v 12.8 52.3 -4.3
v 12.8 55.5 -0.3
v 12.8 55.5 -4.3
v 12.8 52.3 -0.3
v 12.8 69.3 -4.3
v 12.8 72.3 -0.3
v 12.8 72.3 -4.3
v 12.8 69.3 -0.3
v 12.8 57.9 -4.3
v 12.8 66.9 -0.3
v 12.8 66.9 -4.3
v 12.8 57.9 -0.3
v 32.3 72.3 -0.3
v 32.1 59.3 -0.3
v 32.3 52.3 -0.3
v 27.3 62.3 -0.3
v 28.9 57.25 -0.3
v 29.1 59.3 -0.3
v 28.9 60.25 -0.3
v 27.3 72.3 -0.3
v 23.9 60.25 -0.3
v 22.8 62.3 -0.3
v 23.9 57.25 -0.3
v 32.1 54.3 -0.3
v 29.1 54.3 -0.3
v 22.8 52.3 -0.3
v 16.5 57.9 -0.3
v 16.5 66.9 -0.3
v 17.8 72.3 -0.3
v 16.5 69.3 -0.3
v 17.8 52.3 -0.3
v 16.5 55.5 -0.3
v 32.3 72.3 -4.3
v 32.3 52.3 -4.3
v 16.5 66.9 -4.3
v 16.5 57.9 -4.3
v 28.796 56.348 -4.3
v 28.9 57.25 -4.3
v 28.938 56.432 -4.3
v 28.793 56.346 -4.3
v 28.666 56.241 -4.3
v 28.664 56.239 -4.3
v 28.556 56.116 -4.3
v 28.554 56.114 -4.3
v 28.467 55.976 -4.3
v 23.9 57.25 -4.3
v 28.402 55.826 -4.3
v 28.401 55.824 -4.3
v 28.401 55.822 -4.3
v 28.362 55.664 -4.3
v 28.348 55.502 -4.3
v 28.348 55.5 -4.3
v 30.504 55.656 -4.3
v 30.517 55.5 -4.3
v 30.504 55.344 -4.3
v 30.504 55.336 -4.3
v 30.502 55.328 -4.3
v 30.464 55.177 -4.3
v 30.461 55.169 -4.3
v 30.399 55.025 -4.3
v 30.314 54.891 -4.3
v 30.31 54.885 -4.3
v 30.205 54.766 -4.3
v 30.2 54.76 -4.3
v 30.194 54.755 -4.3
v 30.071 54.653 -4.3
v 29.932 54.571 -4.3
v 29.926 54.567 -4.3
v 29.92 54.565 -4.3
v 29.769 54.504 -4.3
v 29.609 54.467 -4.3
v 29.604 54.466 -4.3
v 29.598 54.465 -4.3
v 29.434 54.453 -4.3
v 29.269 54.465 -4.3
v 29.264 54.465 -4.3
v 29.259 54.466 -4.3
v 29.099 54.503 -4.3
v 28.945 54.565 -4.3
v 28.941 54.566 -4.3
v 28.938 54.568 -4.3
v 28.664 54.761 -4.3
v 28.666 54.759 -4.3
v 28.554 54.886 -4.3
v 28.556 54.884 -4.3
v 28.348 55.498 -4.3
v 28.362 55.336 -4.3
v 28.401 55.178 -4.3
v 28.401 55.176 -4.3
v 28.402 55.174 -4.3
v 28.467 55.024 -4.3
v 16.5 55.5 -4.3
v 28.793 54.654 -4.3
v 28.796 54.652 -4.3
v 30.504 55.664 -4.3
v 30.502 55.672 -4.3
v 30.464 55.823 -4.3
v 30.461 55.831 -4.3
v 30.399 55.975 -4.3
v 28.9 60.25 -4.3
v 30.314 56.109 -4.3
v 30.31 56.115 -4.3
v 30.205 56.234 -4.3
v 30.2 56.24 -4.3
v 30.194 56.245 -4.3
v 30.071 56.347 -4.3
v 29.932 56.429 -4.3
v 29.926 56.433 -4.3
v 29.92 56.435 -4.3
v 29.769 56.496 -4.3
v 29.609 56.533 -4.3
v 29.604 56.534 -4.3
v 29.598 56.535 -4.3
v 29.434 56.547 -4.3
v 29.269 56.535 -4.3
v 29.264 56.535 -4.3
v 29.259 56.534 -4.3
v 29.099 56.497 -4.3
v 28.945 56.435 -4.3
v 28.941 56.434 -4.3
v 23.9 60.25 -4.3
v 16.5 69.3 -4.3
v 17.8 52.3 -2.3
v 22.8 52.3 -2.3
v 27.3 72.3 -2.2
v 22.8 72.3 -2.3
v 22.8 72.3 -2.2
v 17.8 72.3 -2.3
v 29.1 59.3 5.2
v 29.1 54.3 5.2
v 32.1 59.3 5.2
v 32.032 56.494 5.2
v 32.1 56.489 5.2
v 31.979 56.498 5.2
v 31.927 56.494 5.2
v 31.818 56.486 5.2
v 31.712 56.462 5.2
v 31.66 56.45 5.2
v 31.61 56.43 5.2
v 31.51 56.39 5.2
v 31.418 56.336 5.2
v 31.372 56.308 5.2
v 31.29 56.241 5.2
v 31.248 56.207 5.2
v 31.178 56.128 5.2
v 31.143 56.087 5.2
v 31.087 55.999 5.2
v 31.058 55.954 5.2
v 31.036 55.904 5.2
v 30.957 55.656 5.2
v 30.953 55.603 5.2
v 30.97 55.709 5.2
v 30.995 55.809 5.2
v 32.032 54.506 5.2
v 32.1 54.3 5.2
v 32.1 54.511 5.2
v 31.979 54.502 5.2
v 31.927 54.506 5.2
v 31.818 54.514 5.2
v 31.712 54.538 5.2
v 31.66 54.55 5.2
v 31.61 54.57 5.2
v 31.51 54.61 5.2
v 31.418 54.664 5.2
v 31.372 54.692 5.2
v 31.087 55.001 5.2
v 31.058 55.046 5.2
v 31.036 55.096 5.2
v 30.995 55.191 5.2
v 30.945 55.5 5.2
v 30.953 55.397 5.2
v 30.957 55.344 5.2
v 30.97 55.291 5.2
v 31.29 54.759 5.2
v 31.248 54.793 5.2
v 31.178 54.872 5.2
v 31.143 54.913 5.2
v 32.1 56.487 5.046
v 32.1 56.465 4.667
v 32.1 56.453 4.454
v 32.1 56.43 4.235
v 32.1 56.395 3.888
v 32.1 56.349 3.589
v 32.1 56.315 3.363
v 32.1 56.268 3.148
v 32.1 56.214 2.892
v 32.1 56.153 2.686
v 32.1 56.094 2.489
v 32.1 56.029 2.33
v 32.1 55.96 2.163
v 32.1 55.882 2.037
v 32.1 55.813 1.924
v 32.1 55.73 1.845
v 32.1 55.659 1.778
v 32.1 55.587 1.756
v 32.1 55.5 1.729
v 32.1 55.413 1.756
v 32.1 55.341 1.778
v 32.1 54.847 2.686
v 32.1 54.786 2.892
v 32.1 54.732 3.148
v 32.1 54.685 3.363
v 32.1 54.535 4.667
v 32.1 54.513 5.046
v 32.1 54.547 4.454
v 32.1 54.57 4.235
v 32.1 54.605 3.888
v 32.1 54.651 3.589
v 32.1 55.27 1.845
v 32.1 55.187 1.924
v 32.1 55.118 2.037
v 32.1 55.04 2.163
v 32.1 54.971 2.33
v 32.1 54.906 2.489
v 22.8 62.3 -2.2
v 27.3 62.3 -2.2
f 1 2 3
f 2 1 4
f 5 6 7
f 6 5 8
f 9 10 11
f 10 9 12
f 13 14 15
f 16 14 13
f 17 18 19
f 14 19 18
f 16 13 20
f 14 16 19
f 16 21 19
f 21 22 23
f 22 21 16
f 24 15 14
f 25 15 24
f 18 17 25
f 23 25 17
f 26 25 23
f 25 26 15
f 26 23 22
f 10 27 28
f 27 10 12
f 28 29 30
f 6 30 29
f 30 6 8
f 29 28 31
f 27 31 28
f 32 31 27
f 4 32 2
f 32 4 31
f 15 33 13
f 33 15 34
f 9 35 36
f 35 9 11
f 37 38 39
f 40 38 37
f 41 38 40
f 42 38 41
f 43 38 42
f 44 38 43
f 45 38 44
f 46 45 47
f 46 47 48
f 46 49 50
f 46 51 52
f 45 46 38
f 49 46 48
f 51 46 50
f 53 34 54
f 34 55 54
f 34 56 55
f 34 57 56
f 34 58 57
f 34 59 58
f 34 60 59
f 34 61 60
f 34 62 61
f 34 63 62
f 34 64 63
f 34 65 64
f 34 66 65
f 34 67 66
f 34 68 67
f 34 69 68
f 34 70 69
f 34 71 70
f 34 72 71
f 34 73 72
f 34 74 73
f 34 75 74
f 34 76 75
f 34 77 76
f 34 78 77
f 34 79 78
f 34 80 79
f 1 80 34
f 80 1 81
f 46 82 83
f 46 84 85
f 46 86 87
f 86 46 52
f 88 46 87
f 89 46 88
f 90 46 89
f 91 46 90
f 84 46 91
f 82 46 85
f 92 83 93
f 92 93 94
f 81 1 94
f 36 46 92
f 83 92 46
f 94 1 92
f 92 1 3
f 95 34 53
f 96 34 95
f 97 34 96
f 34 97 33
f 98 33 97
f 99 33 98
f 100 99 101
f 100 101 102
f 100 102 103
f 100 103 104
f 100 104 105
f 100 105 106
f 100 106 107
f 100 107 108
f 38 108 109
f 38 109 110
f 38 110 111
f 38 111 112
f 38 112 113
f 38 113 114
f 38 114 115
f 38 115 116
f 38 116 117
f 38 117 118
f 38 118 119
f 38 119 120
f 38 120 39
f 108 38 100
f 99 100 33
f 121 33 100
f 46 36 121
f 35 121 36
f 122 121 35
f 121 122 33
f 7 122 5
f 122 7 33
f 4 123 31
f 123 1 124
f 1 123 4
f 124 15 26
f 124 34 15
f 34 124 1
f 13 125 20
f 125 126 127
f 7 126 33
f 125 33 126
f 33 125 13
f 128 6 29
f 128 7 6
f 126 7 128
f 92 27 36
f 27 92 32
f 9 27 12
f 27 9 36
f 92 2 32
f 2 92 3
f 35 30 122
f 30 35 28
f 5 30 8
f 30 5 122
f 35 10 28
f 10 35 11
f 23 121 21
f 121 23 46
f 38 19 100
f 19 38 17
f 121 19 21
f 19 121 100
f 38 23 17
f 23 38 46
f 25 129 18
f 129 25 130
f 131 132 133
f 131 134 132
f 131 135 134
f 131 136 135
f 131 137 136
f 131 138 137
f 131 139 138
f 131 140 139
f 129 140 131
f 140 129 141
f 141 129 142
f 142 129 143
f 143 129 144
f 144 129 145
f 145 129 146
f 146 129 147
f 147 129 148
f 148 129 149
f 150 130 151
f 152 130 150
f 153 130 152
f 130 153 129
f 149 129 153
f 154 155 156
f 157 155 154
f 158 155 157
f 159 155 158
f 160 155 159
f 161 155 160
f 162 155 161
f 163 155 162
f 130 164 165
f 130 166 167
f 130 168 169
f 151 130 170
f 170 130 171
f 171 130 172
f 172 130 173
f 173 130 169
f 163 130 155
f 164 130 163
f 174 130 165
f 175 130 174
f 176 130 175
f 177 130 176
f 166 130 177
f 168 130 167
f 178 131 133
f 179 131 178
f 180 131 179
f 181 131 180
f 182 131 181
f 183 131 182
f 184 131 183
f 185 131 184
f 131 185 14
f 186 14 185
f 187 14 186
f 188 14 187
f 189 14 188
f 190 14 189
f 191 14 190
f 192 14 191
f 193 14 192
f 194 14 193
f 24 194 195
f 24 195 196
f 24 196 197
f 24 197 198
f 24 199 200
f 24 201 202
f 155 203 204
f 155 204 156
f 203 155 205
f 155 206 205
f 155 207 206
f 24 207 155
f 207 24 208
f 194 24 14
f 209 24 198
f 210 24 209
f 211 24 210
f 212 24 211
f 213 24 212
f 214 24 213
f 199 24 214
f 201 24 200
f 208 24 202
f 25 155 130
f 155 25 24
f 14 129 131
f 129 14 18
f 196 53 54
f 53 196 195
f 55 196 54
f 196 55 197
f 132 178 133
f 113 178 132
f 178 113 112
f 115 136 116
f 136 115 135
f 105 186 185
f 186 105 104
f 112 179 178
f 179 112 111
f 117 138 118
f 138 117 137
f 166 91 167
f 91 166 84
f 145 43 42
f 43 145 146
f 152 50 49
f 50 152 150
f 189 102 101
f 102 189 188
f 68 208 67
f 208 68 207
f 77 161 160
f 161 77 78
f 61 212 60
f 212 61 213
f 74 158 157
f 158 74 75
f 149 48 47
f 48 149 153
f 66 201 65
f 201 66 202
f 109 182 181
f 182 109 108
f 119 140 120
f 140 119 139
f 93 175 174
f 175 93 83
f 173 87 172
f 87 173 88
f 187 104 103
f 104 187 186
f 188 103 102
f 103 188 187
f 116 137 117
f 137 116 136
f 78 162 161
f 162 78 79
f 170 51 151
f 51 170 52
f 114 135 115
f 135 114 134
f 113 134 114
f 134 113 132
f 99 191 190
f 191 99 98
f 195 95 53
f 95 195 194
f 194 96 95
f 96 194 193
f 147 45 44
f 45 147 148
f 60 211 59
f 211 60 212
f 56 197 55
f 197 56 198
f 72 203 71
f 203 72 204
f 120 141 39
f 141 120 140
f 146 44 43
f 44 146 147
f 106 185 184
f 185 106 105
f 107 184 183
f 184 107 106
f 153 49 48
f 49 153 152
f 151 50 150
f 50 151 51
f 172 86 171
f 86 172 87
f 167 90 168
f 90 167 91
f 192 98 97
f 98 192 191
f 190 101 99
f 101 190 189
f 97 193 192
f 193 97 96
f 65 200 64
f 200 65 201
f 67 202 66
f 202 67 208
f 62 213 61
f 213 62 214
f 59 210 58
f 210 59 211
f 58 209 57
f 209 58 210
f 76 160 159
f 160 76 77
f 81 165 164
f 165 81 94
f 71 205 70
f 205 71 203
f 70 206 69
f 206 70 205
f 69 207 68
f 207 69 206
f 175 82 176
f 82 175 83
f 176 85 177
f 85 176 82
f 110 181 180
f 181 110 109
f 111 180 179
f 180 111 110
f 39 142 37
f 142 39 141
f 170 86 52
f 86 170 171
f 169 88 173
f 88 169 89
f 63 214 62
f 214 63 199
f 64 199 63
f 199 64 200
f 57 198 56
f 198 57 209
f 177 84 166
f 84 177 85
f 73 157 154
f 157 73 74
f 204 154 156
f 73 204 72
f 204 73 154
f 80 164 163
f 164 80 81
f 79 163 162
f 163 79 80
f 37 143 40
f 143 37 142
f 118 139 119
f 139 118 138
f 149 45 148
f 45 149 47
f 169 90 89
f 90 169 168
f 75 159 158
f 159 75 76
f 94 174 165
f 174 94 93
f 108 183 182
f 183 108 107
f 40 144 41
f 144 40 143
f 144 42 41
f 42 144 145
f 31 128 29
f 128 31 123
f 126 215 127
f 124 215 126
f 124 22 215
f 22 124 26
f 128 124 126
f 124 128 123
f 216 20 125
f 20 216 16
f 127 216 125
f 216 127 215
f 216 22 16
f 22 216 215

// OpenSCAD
// file: kle/crkbd-layout.scad
// Functions to extract from the raw data structure, not sized to units
function key_pos(key) = key[0];
function key_size(key) = key[1];
function key_rot(key) = key[2];
function key_rot_angle(key) = key_rot(key)[0];
function key_rot_off(key) = key_rot(key)[1];

// Put a child shape at the appropriate position for a key, incorporating unit sizing
module position_key(key, unit = 19.05) {
    pos = (key_pos(key) + key_size(key) / 2) * unit;
    rot_off = key_rot_off(key) * unit;
    translate(rot_off) rotate([0, 0, key_rot_angle(key)]) translate(-rot_off)
        translate(pos)
        children();
}

crkbd_layout = [
    [[3.5, 1], [1, 1], [0, [0, 0]]], /* E */
    [[13.0, 1], [1, 1], [0, [0, 0]]], /* I */
    [[2.5, 1.125], [1, 1], [0, [0, 0]]], /* W */
    [[4.5, 1.125], [1, 1], [0, [0, 0]]], /* R */
    [[12.0, 1.125], [1, 1], [0, [0, 0]]], /* U */
    [[14.0, 1.125], [1, 1], [0, [0, 0]]], /* O */
    [[5.5, 1.25], [1, 1], [0, [0, 0]]], /* T */
    [[11.0, 1.25], [1, 1], [0, [0, 0]]], /* Y */
    [[0.5, 1.375], [1, 1], [0, [0, 0]]], /* Esc */
    [[1.5, 1.375], [1, 1], [0, [0, 0]]], /* Q */
    [[15.0, 1.375], [1, 1], [0, [0, 0]]], /* P */
    [[16.0, 1.375], [1, 1], [0, [0, 0]]], /* Bksp */
    [[3.5, 2.0], [1, 1], [0, [0, 0]]], /* D */
    [[13.0, 2.0], [1, 1], [0, [0, 0]]], /* K */
    [[2.5, 2.125], [1, 1], [0, [0, 0]]], /* S */
    [[4.5, 2.125], [1, 1], [0, [0, 0]]], /* F */
    [[12.0, 2.125], [1, 1], [0, [0, 0]]], /* J */
    [[14.0, 2.125], [1, 1], [0, [0, 0]]], /* L */
    [[5.5, 2.25], [1, 1], [0, [0, 0]]], /* G */
    [[11.0, 2.25], [1, 1], [0, [0, 0]]], /* H */
    [[0.5, 2.375], [1, 1], [0, [0, 0]]], /* Tab/Ctrl */
    [[1.5, 2.375], [1, 1], [0, [0, 0]]], /* A */
    [[15.0, 2.375], [1, 1], [0, [0, 0]]], /* ; */
    [[16.0, 2.375], [1, 1], [0, [0, 0]]], /* ' */
    [[3.5, 3.0], [1, 1], [0, [0, 0]]], /* C */
    [[13.0, 3.0], [1, 1], [0, [0, 0]]], /* , */
    [[4.5, 3.125], [1, 1], [0, [0, 0]]], /* V */
    [[12.0, 3.125], [1, 1], [0, [0, 0]]], /* M */
    [[14.0, 3.125], [1, 1], [0, [0, 0]]], /* . */
    [[2.5, 3.1251496999999997], [1, 1], [0, [0, 0]]], /* X */
    [[5.5, 3.25], [1, 1], [0, [0, 0]]], /* B */
    [[11.0, 3.25], [1, 1], [0, [0, 0]]], /* N */
    [[0.5, 3.375], [1, 1], [0, [0, 0]]], /* LShift */
    [[1.5, 3.375], [1, 1], [0, [0, 0]]], /* Z */
    [[15.0, 3.375], [1, 1], [0, [0, 0]]], /* / */
    [[16.0, 3.375], [1, 1], [0, [0, 0]]], /* RShift */
    [[4, 4.16], [1, 1], [0, [0, 0]]], /* Alt */
    [[12.5, 4.16], [1, 1], [0, [0, 0]]], /* Ctrl */
    [[5, 4.16], [1, 1], [15, [5, 5.15]]], /* Lower */
    [[5.91, 3.39], [1, 1.5], [30, [5, 5.25]]], /* Ent */
    [[10.59, 3.39], [1, 1.5], [-30, [12.5, 5.25]]], /* Space */
    [[11.5, 4.16], [1, 1], [-15, [12.5, 5.15]]], /* Raise */
];
// file: pico.scad
module pico() { translate([ 0, 0, 1 ]) rotate(a = [ 90, 0, 90 ]) import("RaspberryPiPico.amf", convexity = 3); }

module pico_test() { pico(); }

//pico_test();
// file: crkbd-common.scad
// http://www.keyboard-layout-editor.com/#/gists/62e7fc79758227cd0ca7efae1afebd99
include <kle/crkbd-layout.scad>

// Hacky way to select just the left hand keys from a split layout
left_keys = [ for (i = crkbd_layout) if (key_pos(i).x < 8) i ];

crkbd_pcb = [134.65, 91.7, 1.65];
crkbd_first_offset = [-9.688, 26.449, 0];  // Coords to put top left corner of PCB at origin
crkbd_window_size = [20.708, 60.85];
//crkbd_window_size = [25, 70];

crkbd_center_offset = crkbd_first_offset + [-crkbd_pcb.x, crkbd_pcb.y - 30] / 2; // To approx center on origin

//mcu_size = [19.5, 34.5, 9.8];  // Adjust depth according to sockets etc
mcu_size = [31+3, 51+3, 9.8];  // Adjust depth according to sockets etc

reset_size = [3.75, 6.25, 3.25];
reset_y_off = -38.6;  // Y offset relative to top right corner

trrs_size = [12.1, 6.5, 5];
trrs_y_off = -47.5;  // Y offset relative to top right corner

pos_x1 = 28.55;
crkbd_screw_holes = [
    [pos_x1, -64.4],        // Bottom left
    [pos_x1, -45.3],        // Top left
    [72.0, -81.6],          // Bottom mid
    [104.89, -41.7],        // Top right
    [118.7, -89.37],        // Bottom right
    ];

// This is so annoying, the SVG had the wrong scale, but direct import from the foostan dxf files didn't work.
svg_scale=0.755;
module crkbd_left_top() {
    scale([svg_scale, svg_scale, 0]) 
    translate([12.0095, -129.5])
    import(file = "orig/crkbd-left-top.svg");
}
module crkbd_left_top_window() {
    scale([svg_scale, svg_scale, 0]) 
    translate([162.94, -83.131])
    import(file = "orig/crkbd-left-top-window.svg");
}
module crkbd_left_bottom() {
    translate([9.0, -282])
    scale([svg_scale, svg_scale, 0]) 
    //translate([11.9, -136.8])
    import(file = "orig/crkbd-left-bottom-mods.svg");
}
module crkbd_left_bottom_mod() {
    scale([svg_scale, svg_scale, 0]) 
    translate([11.9, -136.8])
    import(file = "orig/crkbd-left-bottom-mod.svg");
}
module crkbd_expand_profile(expand = 4) {
    offset(r = expand, chamfer = false, $fn = 40)
    offset(delta = 1.25, chamfer = false, $fn = 40) // Delta gives sharp interiors
    children();
}
module crkbd_outer_profile(expand = 4) {
    crkbd_expand_profile(expand)
    crkbd_left_bottom();
}

module crkbd_pcb_assembly(top_mount_mcu = true, top_mount_reset = true, top_mount_trrs = true, window_z = 0) {

    color("purple") linear_extrude(height=crkbd_pcb.z) crkbd_left_bottom();

    color("#333333") translate(-crkbd_first_offset)
        translate([crkbd_pcb.x - mcu_size.x, -mcu_size.y, 0])
        translate([0, 0, top_mount_mcu ? crkbd_pcb.z : -mcu_size.z])
        cube(mcu_size);

    color("#555555") translate(-crkbd_first_offset)
        translate([crkbd_pcb.x - reset_size.x, reset_y_off - reset_size.y / 2, 0])
        translate([0, 0, top_mount_reset ? crkbd_pcb.z : -reset_size.z])
        cube(reset_size);

    color("#333333") translate(-crkbd_first_offset)
        translate([crkbd_pcb.x, 0, 0])
        translate([0, trrs_y_off, top_mount_trrs ? crkbd_pcb.z : -trrs_size.z])
        union() {
            translate([-trrs_size.x, -trrs_size.y / 2, 0]) cube(trrs_size);
            translate([0, 0, trrs_size.z / 2])  rotate([90, 0, 90]) cylinder(d = 5, h = 2.5, $fn = 8);
        }

    if (window_z > 0) {
        color("#333333") translate([0, 0, crkbd_pcb.z + window_z])
            linear_extrude(height=1.5) crkbd_left_top_window();
        color("#cccc66") translate(-crkbd_first_offset)
        translate([crkbd_pcb.x - crkbd_window_size.x / 2, 9 - crkbd_window_size.y, crkbd_pcb.z])
            for (i = [-30, 150])
            rotate([0, 0, i])
                translate([crkbd_window_size.x / 2 - 1.7, 0, 0])
                cylinder(r = 2, h = window_z, $fn = 6);
    }
}
// main file
///////////////////////////////////////////////////
// Simple Tented Corne Keyboard case
//
// * Single piece combined top plate/outer/tent supports
// * Simple flat transparent bottom (or cut from acrylic)
//
///////////////////////////////////////////////////

include <crkbd-common.scad>
include <../keyboard-case.scad>
include <pico.scad>

theme = 3;
wall_thickness = 2.5;
plate_thickness = 3.2;   // (5mm - max diode height)
depth_offset = 5 + 2 + 2 + 5;       // How much of side wall to include below top plate
bottom_case_height = 5 + 2 + 2; // 11;  // Enough room to house electonics
screw_rad = 3.0 / 2;
tent_attachment_width = 16;
micro_usb_hole_width = 14;
micro_usb_hole_height = 8;

$fa = 1;
$fs = $preview ? 8 : 2;
bezier_precision = $preview ? 0.1 : 0.025;

// Hacky way to select just the left hand keys from a split layout
left_keys = [ for (i = crkbd_layout) if (key_pos(i).x < 8) i ];

crkbd_tent_positions = [
    // [[X, Y], Angle, height]
    [[4.8, -32.2], 180, depth_offset],
    [[4.8, -77.0], 180, depth_offset],
    [[115.5, -19.4], 90, depth_offset + plate_thickness],
    [[140, -102], -30, depth_offset + plate_thickness],
    ];


module simple_micro_usb_hole(hole = true) {
    color("silver") {
        if (hole) {
            translate([0, 1, pcb_thickness+micro_usb_socket_height/2]) rotate([90, 0, 0]) roundedcube([micro_usb_hole_width, micro_usb_hole_height, 10], r=1.5, center=true, $fs=1);
        }
    }
}
module simple_trrs_hole(hole = true) {
    color("silver") {
        if (hole) {
            translate([0, 1, pcb_thickness+micro_usb_socket_height/2]) rotate([90, 0, 0])
                roundedcube([micro_usb_hole_width, micro_usb_hole_height, 10], r=1.5, center=true, $fs=1);
        }
    }
}

module crkbd_case_holes(preview = false) {
    // Case holes for connectors etc. The second version of each is just for preview view
    pcb_offset = plate_thickness - cherry_switch_depth - pcb_thickness;
    // pcb_offset is nominally bottom of crkbd PCB
    translate([142.5, -21.1+3.5, pcb_offset-10]) translate([0, 0, 2 * pcb_thickness]) {
        simple_micro_usb_hole();
        if (preview) {
            %simple_micro_usb_hole(hole = false);
        }
    }
    // TRRS connector - should update to a better shape hole
    translate([138, -34.5, pcb_offset]) translate([0, 0, pcb_thickness]) rotate([0, 0, -90]) {
        simple_trrs_hole();
        if (preview) {
            %simple_trrs_hole(hole = false);
        }
    }
   /* if (preview) {
        %translate([0, 0, plate_thickness - cherry_switch_depth - pcb_thickness])
            crkbd_pcb_assembly();
    }*/
}

module crkbd_top_case(raised = raised) {
    
    difference() {
        union() {
            top_case(left_keys, crkbd_screw_holes, chamfer_faces = true, chamfer_height = raised ? 5 : 2, chamfer_width = 2, raised = raised, tent_positions = crkbd_tent_positions)
                crkbd_outer_profile(raised ? 3 : 2);
            translate([148.1, -70.6, -8.2]) cylinder(h=30-19, r1=3.8/2, r2=5.5/2, center=false, $fn=30); // pico spacer
            translate([148.1-11.4, -70.6, -8.2]) cylinder(h=30-19, r1=3.8/2, r2=5.5/2, center=false, $fn=30);
            translate([148.1, -70.6+47, -8.2]) cylinder(h=30-19, r1=3.8/2, r2=5.5/2, center=false, $fn=30);
            translate([148.1-11.4, -70.6+47, -8.2]) cylinder(h=30-19, r1=3.8/2, r2=5.5/2, center=false, $fn=30);
            
        }
        translate([148.1, -70.6, -26]) cylinder(h=30, r=2.2/2, center=false, $fn=30); // holes mount pico
        translate([148.1-11.4, -70.6, -26]) cylinder(h=30, r=2.2/2, center=false, $fn=30);
        translate([148.1, -70.6+47, -26]) cylinder(h=30, r=2.2/2, center=false, $fn=30);
        translate([148.1-11.4, -70.6+47, -26]) cylinder(h=30, r=2.2/2, center=false, $fn=30);
        translate([148.1, -70.6+26, -26]) cylinder(h=30, r=2.2/2, center=false, $fn=30);  // holes mount TRRS connector
        translate([148.1-11.4, -70.6+26, -26]) cylinder(h=30, r=2.2/2, center=false, $fn=30);
        translate([148.1, -70.6+26-20, -26]) cylinder(h=30, r=2.2/2, center=false, $fn=30);
        translate([148.1-11.4, -70.6+26-20, -26]) cylinder(h=30, r=2.2/2, center=false, $fn=30);
        translate([148.1-11.4/2, -70.6+26-20/2, -26]) cylinder(h=30, r=6/2*1.4, center=false, $fn=4); // hole pass wires
        translate([0, 0, 0]) crkbd_case_holes(true);
        translate([0, 0, -1]) linear_extrude(height = 30, center = false, convexity = 3) 
            //offset(delta = 1, chamfer = false, $fn = 20) // Delta gives sharp interiors
            difference() {
            //crkbd_left_top_window();
            // Ensure some removable supports
            // for (y = [-31, -47, -65]) translate([100, y]) square([100, 1.2], center = false);

        }
    }
}

module crkbd_bottom_case(raised = raised) {
    difference() {
        color(case_color) linear_extrude(height = wall_thickness, center = false, convexity = 3) crkbd_left_bottom();
        translate([0, 0, -wall_thickness]) screw_positions(crkbd_screw_holes) polyhole(r = screw_rad / 2, h = 50);
    }
}

holder_offset = [9.685, -112.5, 0];
module crkbd_holder_profile() {
    translate(holder_offset) square([119.7, 30], center = false);
}

module crkbd_carrier_profile(expand = 4, holder = false) {
    crkbd_outer_profile(expand);
    crkbd_expand_profile(expand) {
        // Space for magnetic micro usb plug
        translate([129, -33.3]) square([11, 10], center = false);
        // Compartment for cables, tent legs etc
        if (holder) {
            crkbd_holder_profile();
        }
    }
}

module crkbd_carrier_inset() {
    tolerance = 0.3;
    for (m = [0, 1]) mirror([0, 0, m]) translate([0, 0, -3.5]) difference() {
        render() chamfer_extrude(height = 4, chamfer = 2, width = 2, faces = [false, false], $fn = 25)
            difference() {
            crkbd_outer_profile(2 + tolerance + 0.1);
            crkbd_outer_profile(tolerance);
        }
        translate([0, 0, -1.5]) render() chamfer_extrude(height = 5, chamfer = 2, width = 2, faces = [false, true], $fn = 25)
            crkbd_outer_profile(2 + tolerance);
        translate([127, -30.3, -5]) cube([18, 10, 10], center = false);
        translate([140, -83.5, -5]) cube([10, 18, 10], center = false);

   }
}

door_thickness = 4.2;
module crkbd_carrier_door(offset = 0, scoop = false) {
    dth = door_thickness * 0.707;
    door_length = 50 + offset;
        difference() {
        linear_extrude(height = door_length) {
            offset(delta = offset, chamfer = false) 
            hull() {
                for (i = [-1, 1]) translate([0, i*10]) rotate([0, 0, 45]) square(dth, center = true);
            }
        }
        if (scoop) {
            thumb_r = 8;
            translate([-door_thickness / 2, 0, 5]) difference() {
                scale([2.5/thumb_r, 1, 1])  sphere(r = thumb_r, $fn = 20);
                translate([-100, -100, -100])  cube([200, 200, 100], center = false);
            }
            for (i = [-1, 1]) translate([0, i * (10 + door_thickness / 2), door_length])
            rotate([0, 90, 0]) rotate([0, 0, 45]) cube([dth, dth, 10], center = true);
        }
    }
}
// A simple carrier that accepts both keyboard halves and protects the keys.
// Could be extended with latches and a space to keep cables.
module crkbd_carrier() {
    tolerance = 0.4;
    case_thickness = 4;
    separation = 17; // key height. 15mm min, maybe allow extra for cables or tall keycaps
    tot_height = bottom_case_height + plate_thickness;
    case_height = 2 * (separation + tot_height);
    translate([0, 0, tot_height]) difference() {
        translate([0, 0, separation]) for (m = [0, 1]) mirror([0, 0, m]) translate([0, 0, -separation]) difference() {
                // Main outer profile less main hole for crkbd keyboard
                translate([0, 0, -tot_height])
                    linear_extrude(height = tot_height + separation, center = false, convexity = 3)
                    difference() {
                    crkbd_carrier_profile(2 + case_thickness + tolerance, true);
                    crkbd_carrier_profile(2 + tolerance);
                }
                // Hollow out leg storage compartment
                translate([0, 0, -tot_height + 2])
                    linear_extrude(height = tot_height + separation, center = false, convexity = 3)
                    difference() {
                    crkbd_expand_profile(2 + tolerance) crkbd_holder_profile();
                    crkbd_carrier_profile(2 + case_thickness + tolerance, false);
                }
                // Slots for tent supports
                translate([0, 0, -tot_height/2-0.1]) for(tent = crkbd_tent_positions) {
                    tent_position = tent[0];
                    tent_angle = tent[1];
                    tent_height = tent[2];
                    translate([tent_position.x, tent_position.y, 0]) rotate([0, 0, tent_angle]) {
                        hull() {
                            translate([-2.5, 0, 0]) cube([0.1, tent_attachment_width, tot_height], center = true);
                            translate([10, 0, 0]) cube([0.1, tent_attachment_width*0.8, tot_height], center = true);
                        }
                    }
                }
            }
        translate(holder_offset - [5.45, -10, bottom_case_height + plate_thickness + 0.1])
        crkbd_carrier_door();
    }
    //translate([0, 0, 0]) render() crkbd_carrier_inset();
//            translate(holder_offset-[6, 10, 0]) cube([39, 20, 50], center = false);
}


part = "top";
explode = 0.5;
depressed = true;
raised = false;

if (part == "outer") { // To preview the outer profile, key hole, and screw hole positions
    /* offset(r = -2.5) // Where top of camber would come to */
    color("gray") translate([0, 0, -5.1]) crkbd_left_bottom();
    translate([0, 0, -5]) crkbd_left_top();
    translate([0, 0, -5]) crkbd_left_top_window();
    color("black") for (pos = crkbd_screw_holes) {
        translate(pos) {
            circle(r = 2.5 / 2, $fn=20);
            //polyhole2d(r = 2.5 / 2);
        }
    }
    #key_holes(left_keys, "plate");
    
} else if (part == "top") {
    /* rotate([180, 0, 90]) translate([0, 0, -plate_thickness]) translate([-80, 60, 0])
        render() difference() {
            crkbd_top_case();
            translate([0, 0, -1]) cylinder(h=30, r=2.1/2, center=false);
        } */
    difference() {    
        union() {
            difference() {
                translate([12.8, 52.3, -4.3]) cube([19.5, 20, 4]); 
                translate([12.5, 52.3+3.2, -4.3-0.5]) cube([4, 2.4, 6]);  // bolt slots
                translate([12.5, 52.3+3.2+11.4, -4.3-0.5]) cube([4, 2.4, 6]);
                translate([12.5+11.4, 52.3+3.2+1.75, -4.3-0.5]) cube([5, 3, 6]);  // switch access hole
            }
            translate([12.5+11.4+5.2, 52.3+3.2+1.7-2.9, -4.3-0.5+4]) cube([3, 5, 6]);  
        }
        translate([12.5+11.4+5.4, 52.3+3.2, -4.3-0.5]) rotate([0, 15, 0]) cylinder(h=15, d1=2.1, d2=1.95, center=false, $fn=40);
        translate([12.8+5, 52.3-1, -4.3+2]) cube([5, 22, 4]);
        translate([12.8+9.5, 52.3-1+11, -4.3+2.1]) cube([5, 22, 4]);
    }
    
    
    //translate([12.8, 62.3, 13]) rotate([0,180,0]) color("blue") pico();
    //%translate([0, 0, plate_thickness + -7 * explode]) key_holes(left_keys, "keycap");

} else if (part == "bottom") {
    rotate([180, 0, 90]) translate([0, 0, -plate_thickness]) translate([-80, 60, 0])
        crkbd_bottom_case();

} else if (part == "carrier") {
    rotate([0, 0, 90]) translate([-80, 60, 0])
    crkbd_carrier();

} else if (part == "carrier-door") {
    tol = 0.3; // Tolerance to allow door to slide in the hole, adjust as needed.
    translate([-20, 0, door_thickness / 2 -  tol])
    rotate([0, 90, 0])
        crkbd_carrier_door(offset = -tol, scoop = true);

} else if (part == "assembly") translate([-80, 60, 0]) {
    %translate([0, 0, plate_thickness - (depressed ? 4 : 0) + 30 * explode]) key_holes(left_keys, "keycap");
    %translate([0, 0, plate_thickness + 20 * explode]) key_holes(left_keys, "switch");
    crkbd_top_case();
    %color("white") translate([0, 0, -bottom_case_height - (20 * explode)]) crkbd_bottom_case();
}


// Requires my utility functions in your OpenSCAD lib or as local submodule
// https://github.com/Lenbok/scad-lenbok-utils.git
use<../Lenbok_Utils/utils.scad>
